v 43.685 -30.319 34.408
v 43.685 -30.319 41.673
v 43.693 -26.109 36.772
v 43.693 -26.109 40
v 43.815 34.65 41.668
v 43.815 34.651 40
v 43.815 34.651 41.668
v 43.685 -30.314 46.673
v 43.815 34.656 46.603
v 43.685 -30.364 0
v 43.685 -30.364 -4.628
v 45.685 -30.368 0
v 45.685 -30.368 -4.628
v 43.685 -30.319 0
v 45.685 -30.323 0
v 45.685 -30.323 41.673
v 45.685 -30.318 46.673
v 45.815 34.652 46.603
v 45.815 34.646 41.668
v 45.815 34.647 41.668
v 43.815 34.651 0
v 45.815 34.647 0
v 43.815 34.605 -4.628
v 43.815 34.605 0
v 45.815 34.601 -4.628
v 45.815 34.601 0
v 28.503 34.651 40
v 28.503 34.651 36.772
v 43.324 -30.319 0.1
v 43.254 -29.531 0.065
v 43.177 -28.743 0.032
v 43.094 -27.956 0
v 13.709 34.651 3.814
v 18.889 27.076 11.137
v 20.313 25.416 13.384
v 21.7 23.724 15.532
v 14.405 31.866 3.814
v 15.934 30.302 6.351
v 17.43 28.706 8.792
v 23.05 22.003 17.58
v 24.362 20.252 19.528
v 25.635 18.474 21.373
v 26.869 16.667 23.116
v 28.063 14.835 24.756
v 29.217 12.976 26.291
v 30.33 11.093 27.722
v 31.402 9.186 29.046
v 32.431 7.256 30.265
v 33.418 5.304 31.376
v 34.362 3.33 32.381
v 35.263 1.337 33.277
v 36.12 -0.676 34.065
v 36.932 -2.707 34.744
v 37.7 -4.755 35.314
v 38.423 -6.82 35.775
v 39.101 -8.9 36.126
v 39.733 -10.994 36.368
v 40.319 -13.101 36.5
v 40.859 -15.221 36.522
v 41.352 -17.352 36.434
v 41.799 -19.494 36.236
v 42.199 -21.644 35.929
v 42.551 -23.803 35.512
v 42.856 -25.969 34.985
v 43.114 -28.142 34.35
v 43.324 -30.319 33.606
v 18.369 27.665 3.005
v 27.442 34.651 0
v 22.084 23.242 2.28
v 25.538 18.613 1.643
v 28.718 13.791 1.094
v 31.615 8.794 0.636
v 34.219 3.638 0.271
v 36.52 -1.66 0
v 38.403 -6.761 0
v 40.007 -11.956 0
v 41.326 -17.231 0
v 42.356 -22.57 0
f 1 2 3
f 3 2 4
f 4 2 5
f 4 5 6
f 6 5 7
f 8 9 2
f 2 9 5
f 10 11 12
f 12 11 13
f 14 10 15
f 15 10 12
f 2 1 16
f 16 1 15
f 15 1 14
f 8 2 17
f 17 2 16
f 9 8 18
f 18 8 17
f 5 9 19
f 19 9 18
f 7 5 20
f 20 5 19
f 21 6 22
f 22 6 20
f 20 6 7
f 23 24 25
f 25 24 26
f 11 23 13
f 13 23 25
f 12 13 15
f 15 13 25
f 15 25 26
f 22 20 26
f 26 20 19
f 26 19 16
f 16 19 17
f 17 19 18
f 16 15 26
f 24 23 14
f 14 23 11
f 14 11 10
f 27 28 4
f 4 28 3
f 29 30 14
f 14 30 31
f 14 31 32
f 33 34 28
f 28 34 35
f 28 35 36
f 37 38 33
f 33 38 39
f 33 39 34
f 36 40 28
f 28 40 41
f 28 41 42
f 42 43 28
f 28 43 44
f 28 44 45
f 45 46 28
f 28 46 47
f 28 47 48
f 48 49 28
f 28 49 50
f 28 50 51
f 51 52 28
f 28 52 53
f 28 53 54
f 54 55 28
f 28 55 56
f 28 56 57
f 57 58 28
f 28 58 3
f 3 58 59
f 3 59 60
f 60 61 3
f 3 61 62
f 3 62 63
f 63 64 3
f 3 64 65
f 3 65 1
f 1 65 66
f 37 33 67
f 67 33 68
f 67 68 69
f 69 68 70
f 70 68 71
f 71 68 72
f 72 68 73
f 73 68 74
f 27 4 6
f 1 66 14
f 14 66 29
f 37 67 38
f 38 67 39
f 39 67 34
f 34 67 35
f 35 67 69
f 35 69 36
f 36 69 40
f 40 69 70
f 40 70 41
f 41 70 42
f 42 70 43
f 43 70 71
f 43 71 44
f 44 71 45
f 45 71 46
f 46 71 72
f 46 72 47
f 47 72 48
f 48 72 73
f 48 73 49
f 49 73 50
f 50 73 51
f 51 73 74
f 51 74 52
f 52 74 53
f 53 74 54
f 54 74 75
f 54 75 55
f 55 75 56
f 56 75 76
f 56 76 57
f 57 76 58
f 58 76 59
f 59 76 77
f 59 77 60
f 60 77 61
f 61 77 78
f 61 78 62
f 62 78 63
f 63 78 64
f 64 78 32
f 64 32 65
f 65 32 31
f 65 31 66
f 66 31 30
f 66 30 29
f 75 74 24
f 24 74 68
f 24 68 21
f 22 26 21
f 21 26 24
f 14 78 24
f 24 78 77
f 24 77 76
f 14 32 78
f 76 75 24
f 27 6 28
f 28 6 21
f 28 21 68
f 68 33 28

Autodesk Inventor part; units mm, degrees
ref_plane "YZ Plane" through (0, 0, 0) normal (1, 0, 0) x (0, 1, 0)
ref_plane "XZ Plane" through (0, 0, 0) normal (0, 1, 0) x (-1, 0, 0)
sketch "Sketch1" plane through (0, 0, 0) normal (0, 0, 1) x (1, 0, 0)
  line L0 (43.3243, -30.319) -> (27.0819, 34.6507)
  line L1 (43.6847, -30.319) -> (43.3243, -30.319)
  line L2 (43.8153, 34.6507) -> (43.6847, -30.319)
  line L3 (27.0819, 34.6507) -> (43.8153, 34.6507)
  point P0 (0, 0)
extrude "Extrusion1" add sketch "Sketch1" along normal blind 40
sketch "Sketch2" plane through (0, 0, 40) normal (0, 0, 1) x (1, 0, 0)
  line L0 (43.6847, -30.319) -> (43.8153, 34.6507)
  line L1 (43.8153, 34.6507) -> (27.0819, 34.6507)
  line L2 (27.0819, 34.6507) -> (43.3243, -30.319)
  line L3 (43.3243, -30.319) -> (43.6847, -30.319)
  line L4 (9.5067, 30.2569) -> (11.5067, 30.2569)
  line L5 (11.5067, 30.2569) -> (11.5067, 34.6507)
  line L6 (11.5067, 34.6507) -> (27.0819, 34.6507)
  line L7 (11.5067, 34.6507) -> (43.3243, -30.319)
  point P0 (0, 0)
  dimension "d2" = 2
extrude "Extrusion2" add sketch "Sketch2" against normal blind 40 contours L7 L6 L2
sketch "Sketch3" plane through (0, 0, 0) normal (0, 0, -1) x (-1, 0, 0)
  line L0 (-43.6847, -30.319) -> (-43.8153, 34.6507) projected
  line L1 (-43.3243, -30.319) -> (-43.6847, -30.319) projected
  line L2 (-43.3243, -30.319) -> (-11.5067, 34.6507) projected
  line L3 (-43.8153, 34.6507) -> (-11.5067, 34.6507) projected
  arc A0 (-11.5067, 34.6507) -> (-43.3243, -30.319) centre (56.3122, -38.8381) ccw
  point P0 (0, 0)
  dimension "d5" = 100
extrude "Extrusion3" cut sketch "Sketch3" against normal blind 40 contours A0 L2
ref_plane "Work Plane1" through (25.8481, -31.3143, 21.5224) normal (0.9701425, 0.2425356, 0) x (0, 0, -1)
ref_plane "Work Plane4" through (11.5067, 34.6507, 40) normal (0.2425356, -0.9701425, 0) x (0, 0, -1)
ref_plane "Work Plane3" through (25.8481, -31.3143, 21.5224) normal (0.9701425, 0.2425356, 0) x (0, 0, -1)
sketch "Sketch5" plane through (11.5067, 34.6507, 40) normal (0.2425356, -0.9701425, 0) x (0, 0, -1)
  line L0 (29.9641, 1.0219) -> (3.228, 13.4892)
  line L1 (3.228, 13.4892) -> (3.228, 16.4892)
  line L2 (3.228, 16.4892) -> (0, 16.4892)
  line L3 (0, 31.344) -> (0, 0) projected
  line L4 (40, 31.344) -> (40, 0) projected
  line L5 (0, 0) -> (40, 0) projected
  line L6 (0, 31.344) -> (0, 0) projected
  line L7 (40, 31.344) -> (0, 31.344) projected
  line L8 (29.9641, 1.0219) -> (40, 1.0219)
  arc A0 (36.6954, 1.9144) -> (36.6283, 1.4007) centre (38.6283, 1.4007) ccw projected
  line L9 (36.6954, 1.9144) -> (40, 1.9144) projected
  line L10 (40, 1.9144) -> (40, -5.9625) projected
  arc A1 (40, -5.9625) -> (38.4823, -3.5717) centre (32.6454, -8.9542) ccw projected
  arc A2 (36.6283, 1.1737) -> (38.4823, -3.5717) centre (43.6283, 1.1737) ccw projected
  line L11 (36.6283, 1.1737) -> (36.6283, 1.4007) projected
  arc A3 (36.867, 2.3482) -> (36.6954, 1.9144) centre (38.6283, 1.4007) ccw projected
  arc A4 (36.867, 2.3482) -> (40, 14.7848) centre (13.75, 14.7848) ccw projected
  line L12 (40, 14.7848) -> (40, 31.0187) projected
  line L13 (44.6283, 31.0187) -> (40, 31.0187) projected
  line L14 (44.6283, -24.8913) -> (44.6283, 31.0187) projected
  line L15 (44.6283, -24.8913) -> (40, -24.8913) projected
  line L16 (40, -24.8913) -> (40, 1.9144) projected
  line L17 (36.6954, 1.9144) -> (40, 1.9144) projected
  line L18 (36.6954, 1.9144) -> (3.228, 16.4892)
  line L19 (40, 15.4598) -> (40, 31.344) projected
  line L20 (40, 14.7848) -> (40, 15.4598)
  line L21 (40, 15.4598) -> (0, 15.4598) projected
  line L22 (40, 15.4598) -> (36.1857, 2.1363)
  point P0 (40, -19.5671)
  point P1 (0, 0)
  point P2 (36.7274, 0)
  dimension "d10" = 3
extrude "Extrusion4" cut sketch "Sketch5" along normal blind 72.5 contours L8 A2 L5 L3 L21 L1 L0 | L0 L1 L21 L18 A0 L11 A2 L8 | A2 L11 A0 L9 L4 L8 | L8 L4 L5 A2 | L21 L3 L2 L1 | L1 L18 L21 | L5 L10 A1 A2 | L9 A3 A4 L4 | L22 L4 A4 A3 L18
sketch "Sketch6" plane through (43.8153, 34.6507, 40) normal (0.999998, -0.0020114, 0) x (0, 0, -1)
  line L0 (40, -0.0453) -> (40, -65.0151)
  line L1 (44.6283, -65.0151) -> (40, -65.0151)
  line L2 (44.6283, -0.0453) -> (44.6283, -65.0151)
  line L3 (44.6283, -0.0453) -> (40, -0.0453)
  line L4 (-1.673, -64.9698) -> (-6.673, -64.9644)
  line L5 (-1.673, -64.9698) -> (-1.6028, -0.0003)
  line L6 (-6.6028, 0.0051) -> (-1.6028, -0.0003)
  line L7 (-6.673, -64.9644) -> (-6.6028, 0.0051)
  line L8 (0, -60.7594) -> (0, 0) projected
  line L9 (0, 0) -> (-1.6685, 0)
  line L10 (-1.6685, 0) -> (-1.6685, -60.7144)
  line L11 (-1.6685, -60.7144) -> (0, -60.7144)
  line L12 (0, -60.7144) -> (0, 0)
  line L13 (40, -64.9698) -> (40, 0) projected
  line L14 (40, 0) -> (0, 0)
  line L15 (0, 0) -> (0, -60.7144)
  line L16 (0, -60.7144) -> (40, -60.7144)
  line L17 (40, -60.7144) -> (40, 0)
  line L18 (40, -64.9698) -> (-1.673, -64.9698)
  point P0 (40, -34.7388)
  point P1 (-1.6685, -0.0002)
  point P2 (40, -60.7144)
extrude "Extrusion5" add sketch "Sketch6" along normal blind 2
properties part number "Lid"
